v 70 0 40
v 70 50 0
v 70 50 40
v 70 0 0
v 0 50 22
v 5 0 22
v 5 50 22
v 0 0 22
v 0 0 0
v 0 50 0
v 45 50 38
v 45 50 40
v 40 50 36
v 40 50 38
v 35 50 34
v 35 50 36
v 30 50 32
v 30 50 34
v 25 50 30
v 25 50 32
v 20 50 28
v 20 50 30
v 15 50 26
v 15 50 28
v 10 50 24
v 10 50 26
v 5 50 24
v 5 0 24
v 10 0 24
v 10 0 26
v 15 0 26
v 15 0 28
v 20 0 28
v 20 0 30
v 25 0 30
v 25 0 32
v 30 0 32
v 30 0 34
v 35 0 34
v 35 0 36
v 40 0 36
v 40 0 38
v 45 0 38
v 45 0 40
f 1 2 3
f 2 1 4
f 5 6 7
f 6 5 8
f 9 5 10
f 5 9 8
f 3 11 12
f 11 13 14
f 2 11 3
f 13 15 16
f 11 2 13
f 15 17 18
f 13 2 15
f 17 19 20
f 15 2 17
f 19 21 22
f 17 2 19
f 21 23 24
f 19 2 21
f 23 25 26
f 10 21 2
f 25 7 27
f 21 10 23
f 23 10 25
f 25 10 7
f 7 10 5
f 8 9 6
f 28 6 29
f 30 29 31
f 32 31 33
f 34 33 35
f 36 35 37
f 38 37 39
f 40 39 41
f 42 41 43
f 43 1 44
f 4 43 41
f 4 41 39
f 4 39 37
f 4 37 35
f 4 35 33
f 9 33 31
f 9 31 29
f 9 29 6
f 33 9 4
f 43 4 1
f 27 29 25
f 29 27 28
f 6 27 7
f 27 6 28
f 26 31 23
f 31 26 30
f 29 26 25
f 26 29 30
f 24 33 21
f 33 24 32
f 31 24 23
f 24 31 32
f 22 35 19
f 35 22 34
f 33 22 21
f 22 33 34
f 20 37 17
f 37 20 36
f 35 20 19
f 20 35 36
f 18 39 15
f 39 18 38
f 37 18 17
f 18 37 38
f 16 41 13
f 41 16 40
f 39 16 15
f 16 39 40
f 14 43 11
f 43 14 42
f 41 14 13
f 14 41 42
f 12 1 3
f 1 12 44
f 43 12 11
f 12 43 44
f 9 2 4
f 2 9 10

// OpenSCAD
// Parameters for the stepped block
base_length = 70;  // Adjusted length of the rectangular base to match the original model
base_width = 50;   // Adjusted width of the rectangular base to match the original model
base_height = 20;  // Adjusted height of the base to match the original model
step_count = 10;   // Increased number of steps to match the original model
step_height = 2;   // Reduced height of each step to match the original model
step_depth = 5;    // Reduced depth of each step to match the original model

module stepped_block() {
    // Base of the block
    cube([base_length, base_width, base_height]);

    // Steps
    for (i = [0:step_count-1]) {
        translate([i * step_depth, 0, base_height + i * step_height])
            cube([base_length - i * step_depth, base_width, step_height]);
    }
}

// Render the stepped block
stepped_block();
